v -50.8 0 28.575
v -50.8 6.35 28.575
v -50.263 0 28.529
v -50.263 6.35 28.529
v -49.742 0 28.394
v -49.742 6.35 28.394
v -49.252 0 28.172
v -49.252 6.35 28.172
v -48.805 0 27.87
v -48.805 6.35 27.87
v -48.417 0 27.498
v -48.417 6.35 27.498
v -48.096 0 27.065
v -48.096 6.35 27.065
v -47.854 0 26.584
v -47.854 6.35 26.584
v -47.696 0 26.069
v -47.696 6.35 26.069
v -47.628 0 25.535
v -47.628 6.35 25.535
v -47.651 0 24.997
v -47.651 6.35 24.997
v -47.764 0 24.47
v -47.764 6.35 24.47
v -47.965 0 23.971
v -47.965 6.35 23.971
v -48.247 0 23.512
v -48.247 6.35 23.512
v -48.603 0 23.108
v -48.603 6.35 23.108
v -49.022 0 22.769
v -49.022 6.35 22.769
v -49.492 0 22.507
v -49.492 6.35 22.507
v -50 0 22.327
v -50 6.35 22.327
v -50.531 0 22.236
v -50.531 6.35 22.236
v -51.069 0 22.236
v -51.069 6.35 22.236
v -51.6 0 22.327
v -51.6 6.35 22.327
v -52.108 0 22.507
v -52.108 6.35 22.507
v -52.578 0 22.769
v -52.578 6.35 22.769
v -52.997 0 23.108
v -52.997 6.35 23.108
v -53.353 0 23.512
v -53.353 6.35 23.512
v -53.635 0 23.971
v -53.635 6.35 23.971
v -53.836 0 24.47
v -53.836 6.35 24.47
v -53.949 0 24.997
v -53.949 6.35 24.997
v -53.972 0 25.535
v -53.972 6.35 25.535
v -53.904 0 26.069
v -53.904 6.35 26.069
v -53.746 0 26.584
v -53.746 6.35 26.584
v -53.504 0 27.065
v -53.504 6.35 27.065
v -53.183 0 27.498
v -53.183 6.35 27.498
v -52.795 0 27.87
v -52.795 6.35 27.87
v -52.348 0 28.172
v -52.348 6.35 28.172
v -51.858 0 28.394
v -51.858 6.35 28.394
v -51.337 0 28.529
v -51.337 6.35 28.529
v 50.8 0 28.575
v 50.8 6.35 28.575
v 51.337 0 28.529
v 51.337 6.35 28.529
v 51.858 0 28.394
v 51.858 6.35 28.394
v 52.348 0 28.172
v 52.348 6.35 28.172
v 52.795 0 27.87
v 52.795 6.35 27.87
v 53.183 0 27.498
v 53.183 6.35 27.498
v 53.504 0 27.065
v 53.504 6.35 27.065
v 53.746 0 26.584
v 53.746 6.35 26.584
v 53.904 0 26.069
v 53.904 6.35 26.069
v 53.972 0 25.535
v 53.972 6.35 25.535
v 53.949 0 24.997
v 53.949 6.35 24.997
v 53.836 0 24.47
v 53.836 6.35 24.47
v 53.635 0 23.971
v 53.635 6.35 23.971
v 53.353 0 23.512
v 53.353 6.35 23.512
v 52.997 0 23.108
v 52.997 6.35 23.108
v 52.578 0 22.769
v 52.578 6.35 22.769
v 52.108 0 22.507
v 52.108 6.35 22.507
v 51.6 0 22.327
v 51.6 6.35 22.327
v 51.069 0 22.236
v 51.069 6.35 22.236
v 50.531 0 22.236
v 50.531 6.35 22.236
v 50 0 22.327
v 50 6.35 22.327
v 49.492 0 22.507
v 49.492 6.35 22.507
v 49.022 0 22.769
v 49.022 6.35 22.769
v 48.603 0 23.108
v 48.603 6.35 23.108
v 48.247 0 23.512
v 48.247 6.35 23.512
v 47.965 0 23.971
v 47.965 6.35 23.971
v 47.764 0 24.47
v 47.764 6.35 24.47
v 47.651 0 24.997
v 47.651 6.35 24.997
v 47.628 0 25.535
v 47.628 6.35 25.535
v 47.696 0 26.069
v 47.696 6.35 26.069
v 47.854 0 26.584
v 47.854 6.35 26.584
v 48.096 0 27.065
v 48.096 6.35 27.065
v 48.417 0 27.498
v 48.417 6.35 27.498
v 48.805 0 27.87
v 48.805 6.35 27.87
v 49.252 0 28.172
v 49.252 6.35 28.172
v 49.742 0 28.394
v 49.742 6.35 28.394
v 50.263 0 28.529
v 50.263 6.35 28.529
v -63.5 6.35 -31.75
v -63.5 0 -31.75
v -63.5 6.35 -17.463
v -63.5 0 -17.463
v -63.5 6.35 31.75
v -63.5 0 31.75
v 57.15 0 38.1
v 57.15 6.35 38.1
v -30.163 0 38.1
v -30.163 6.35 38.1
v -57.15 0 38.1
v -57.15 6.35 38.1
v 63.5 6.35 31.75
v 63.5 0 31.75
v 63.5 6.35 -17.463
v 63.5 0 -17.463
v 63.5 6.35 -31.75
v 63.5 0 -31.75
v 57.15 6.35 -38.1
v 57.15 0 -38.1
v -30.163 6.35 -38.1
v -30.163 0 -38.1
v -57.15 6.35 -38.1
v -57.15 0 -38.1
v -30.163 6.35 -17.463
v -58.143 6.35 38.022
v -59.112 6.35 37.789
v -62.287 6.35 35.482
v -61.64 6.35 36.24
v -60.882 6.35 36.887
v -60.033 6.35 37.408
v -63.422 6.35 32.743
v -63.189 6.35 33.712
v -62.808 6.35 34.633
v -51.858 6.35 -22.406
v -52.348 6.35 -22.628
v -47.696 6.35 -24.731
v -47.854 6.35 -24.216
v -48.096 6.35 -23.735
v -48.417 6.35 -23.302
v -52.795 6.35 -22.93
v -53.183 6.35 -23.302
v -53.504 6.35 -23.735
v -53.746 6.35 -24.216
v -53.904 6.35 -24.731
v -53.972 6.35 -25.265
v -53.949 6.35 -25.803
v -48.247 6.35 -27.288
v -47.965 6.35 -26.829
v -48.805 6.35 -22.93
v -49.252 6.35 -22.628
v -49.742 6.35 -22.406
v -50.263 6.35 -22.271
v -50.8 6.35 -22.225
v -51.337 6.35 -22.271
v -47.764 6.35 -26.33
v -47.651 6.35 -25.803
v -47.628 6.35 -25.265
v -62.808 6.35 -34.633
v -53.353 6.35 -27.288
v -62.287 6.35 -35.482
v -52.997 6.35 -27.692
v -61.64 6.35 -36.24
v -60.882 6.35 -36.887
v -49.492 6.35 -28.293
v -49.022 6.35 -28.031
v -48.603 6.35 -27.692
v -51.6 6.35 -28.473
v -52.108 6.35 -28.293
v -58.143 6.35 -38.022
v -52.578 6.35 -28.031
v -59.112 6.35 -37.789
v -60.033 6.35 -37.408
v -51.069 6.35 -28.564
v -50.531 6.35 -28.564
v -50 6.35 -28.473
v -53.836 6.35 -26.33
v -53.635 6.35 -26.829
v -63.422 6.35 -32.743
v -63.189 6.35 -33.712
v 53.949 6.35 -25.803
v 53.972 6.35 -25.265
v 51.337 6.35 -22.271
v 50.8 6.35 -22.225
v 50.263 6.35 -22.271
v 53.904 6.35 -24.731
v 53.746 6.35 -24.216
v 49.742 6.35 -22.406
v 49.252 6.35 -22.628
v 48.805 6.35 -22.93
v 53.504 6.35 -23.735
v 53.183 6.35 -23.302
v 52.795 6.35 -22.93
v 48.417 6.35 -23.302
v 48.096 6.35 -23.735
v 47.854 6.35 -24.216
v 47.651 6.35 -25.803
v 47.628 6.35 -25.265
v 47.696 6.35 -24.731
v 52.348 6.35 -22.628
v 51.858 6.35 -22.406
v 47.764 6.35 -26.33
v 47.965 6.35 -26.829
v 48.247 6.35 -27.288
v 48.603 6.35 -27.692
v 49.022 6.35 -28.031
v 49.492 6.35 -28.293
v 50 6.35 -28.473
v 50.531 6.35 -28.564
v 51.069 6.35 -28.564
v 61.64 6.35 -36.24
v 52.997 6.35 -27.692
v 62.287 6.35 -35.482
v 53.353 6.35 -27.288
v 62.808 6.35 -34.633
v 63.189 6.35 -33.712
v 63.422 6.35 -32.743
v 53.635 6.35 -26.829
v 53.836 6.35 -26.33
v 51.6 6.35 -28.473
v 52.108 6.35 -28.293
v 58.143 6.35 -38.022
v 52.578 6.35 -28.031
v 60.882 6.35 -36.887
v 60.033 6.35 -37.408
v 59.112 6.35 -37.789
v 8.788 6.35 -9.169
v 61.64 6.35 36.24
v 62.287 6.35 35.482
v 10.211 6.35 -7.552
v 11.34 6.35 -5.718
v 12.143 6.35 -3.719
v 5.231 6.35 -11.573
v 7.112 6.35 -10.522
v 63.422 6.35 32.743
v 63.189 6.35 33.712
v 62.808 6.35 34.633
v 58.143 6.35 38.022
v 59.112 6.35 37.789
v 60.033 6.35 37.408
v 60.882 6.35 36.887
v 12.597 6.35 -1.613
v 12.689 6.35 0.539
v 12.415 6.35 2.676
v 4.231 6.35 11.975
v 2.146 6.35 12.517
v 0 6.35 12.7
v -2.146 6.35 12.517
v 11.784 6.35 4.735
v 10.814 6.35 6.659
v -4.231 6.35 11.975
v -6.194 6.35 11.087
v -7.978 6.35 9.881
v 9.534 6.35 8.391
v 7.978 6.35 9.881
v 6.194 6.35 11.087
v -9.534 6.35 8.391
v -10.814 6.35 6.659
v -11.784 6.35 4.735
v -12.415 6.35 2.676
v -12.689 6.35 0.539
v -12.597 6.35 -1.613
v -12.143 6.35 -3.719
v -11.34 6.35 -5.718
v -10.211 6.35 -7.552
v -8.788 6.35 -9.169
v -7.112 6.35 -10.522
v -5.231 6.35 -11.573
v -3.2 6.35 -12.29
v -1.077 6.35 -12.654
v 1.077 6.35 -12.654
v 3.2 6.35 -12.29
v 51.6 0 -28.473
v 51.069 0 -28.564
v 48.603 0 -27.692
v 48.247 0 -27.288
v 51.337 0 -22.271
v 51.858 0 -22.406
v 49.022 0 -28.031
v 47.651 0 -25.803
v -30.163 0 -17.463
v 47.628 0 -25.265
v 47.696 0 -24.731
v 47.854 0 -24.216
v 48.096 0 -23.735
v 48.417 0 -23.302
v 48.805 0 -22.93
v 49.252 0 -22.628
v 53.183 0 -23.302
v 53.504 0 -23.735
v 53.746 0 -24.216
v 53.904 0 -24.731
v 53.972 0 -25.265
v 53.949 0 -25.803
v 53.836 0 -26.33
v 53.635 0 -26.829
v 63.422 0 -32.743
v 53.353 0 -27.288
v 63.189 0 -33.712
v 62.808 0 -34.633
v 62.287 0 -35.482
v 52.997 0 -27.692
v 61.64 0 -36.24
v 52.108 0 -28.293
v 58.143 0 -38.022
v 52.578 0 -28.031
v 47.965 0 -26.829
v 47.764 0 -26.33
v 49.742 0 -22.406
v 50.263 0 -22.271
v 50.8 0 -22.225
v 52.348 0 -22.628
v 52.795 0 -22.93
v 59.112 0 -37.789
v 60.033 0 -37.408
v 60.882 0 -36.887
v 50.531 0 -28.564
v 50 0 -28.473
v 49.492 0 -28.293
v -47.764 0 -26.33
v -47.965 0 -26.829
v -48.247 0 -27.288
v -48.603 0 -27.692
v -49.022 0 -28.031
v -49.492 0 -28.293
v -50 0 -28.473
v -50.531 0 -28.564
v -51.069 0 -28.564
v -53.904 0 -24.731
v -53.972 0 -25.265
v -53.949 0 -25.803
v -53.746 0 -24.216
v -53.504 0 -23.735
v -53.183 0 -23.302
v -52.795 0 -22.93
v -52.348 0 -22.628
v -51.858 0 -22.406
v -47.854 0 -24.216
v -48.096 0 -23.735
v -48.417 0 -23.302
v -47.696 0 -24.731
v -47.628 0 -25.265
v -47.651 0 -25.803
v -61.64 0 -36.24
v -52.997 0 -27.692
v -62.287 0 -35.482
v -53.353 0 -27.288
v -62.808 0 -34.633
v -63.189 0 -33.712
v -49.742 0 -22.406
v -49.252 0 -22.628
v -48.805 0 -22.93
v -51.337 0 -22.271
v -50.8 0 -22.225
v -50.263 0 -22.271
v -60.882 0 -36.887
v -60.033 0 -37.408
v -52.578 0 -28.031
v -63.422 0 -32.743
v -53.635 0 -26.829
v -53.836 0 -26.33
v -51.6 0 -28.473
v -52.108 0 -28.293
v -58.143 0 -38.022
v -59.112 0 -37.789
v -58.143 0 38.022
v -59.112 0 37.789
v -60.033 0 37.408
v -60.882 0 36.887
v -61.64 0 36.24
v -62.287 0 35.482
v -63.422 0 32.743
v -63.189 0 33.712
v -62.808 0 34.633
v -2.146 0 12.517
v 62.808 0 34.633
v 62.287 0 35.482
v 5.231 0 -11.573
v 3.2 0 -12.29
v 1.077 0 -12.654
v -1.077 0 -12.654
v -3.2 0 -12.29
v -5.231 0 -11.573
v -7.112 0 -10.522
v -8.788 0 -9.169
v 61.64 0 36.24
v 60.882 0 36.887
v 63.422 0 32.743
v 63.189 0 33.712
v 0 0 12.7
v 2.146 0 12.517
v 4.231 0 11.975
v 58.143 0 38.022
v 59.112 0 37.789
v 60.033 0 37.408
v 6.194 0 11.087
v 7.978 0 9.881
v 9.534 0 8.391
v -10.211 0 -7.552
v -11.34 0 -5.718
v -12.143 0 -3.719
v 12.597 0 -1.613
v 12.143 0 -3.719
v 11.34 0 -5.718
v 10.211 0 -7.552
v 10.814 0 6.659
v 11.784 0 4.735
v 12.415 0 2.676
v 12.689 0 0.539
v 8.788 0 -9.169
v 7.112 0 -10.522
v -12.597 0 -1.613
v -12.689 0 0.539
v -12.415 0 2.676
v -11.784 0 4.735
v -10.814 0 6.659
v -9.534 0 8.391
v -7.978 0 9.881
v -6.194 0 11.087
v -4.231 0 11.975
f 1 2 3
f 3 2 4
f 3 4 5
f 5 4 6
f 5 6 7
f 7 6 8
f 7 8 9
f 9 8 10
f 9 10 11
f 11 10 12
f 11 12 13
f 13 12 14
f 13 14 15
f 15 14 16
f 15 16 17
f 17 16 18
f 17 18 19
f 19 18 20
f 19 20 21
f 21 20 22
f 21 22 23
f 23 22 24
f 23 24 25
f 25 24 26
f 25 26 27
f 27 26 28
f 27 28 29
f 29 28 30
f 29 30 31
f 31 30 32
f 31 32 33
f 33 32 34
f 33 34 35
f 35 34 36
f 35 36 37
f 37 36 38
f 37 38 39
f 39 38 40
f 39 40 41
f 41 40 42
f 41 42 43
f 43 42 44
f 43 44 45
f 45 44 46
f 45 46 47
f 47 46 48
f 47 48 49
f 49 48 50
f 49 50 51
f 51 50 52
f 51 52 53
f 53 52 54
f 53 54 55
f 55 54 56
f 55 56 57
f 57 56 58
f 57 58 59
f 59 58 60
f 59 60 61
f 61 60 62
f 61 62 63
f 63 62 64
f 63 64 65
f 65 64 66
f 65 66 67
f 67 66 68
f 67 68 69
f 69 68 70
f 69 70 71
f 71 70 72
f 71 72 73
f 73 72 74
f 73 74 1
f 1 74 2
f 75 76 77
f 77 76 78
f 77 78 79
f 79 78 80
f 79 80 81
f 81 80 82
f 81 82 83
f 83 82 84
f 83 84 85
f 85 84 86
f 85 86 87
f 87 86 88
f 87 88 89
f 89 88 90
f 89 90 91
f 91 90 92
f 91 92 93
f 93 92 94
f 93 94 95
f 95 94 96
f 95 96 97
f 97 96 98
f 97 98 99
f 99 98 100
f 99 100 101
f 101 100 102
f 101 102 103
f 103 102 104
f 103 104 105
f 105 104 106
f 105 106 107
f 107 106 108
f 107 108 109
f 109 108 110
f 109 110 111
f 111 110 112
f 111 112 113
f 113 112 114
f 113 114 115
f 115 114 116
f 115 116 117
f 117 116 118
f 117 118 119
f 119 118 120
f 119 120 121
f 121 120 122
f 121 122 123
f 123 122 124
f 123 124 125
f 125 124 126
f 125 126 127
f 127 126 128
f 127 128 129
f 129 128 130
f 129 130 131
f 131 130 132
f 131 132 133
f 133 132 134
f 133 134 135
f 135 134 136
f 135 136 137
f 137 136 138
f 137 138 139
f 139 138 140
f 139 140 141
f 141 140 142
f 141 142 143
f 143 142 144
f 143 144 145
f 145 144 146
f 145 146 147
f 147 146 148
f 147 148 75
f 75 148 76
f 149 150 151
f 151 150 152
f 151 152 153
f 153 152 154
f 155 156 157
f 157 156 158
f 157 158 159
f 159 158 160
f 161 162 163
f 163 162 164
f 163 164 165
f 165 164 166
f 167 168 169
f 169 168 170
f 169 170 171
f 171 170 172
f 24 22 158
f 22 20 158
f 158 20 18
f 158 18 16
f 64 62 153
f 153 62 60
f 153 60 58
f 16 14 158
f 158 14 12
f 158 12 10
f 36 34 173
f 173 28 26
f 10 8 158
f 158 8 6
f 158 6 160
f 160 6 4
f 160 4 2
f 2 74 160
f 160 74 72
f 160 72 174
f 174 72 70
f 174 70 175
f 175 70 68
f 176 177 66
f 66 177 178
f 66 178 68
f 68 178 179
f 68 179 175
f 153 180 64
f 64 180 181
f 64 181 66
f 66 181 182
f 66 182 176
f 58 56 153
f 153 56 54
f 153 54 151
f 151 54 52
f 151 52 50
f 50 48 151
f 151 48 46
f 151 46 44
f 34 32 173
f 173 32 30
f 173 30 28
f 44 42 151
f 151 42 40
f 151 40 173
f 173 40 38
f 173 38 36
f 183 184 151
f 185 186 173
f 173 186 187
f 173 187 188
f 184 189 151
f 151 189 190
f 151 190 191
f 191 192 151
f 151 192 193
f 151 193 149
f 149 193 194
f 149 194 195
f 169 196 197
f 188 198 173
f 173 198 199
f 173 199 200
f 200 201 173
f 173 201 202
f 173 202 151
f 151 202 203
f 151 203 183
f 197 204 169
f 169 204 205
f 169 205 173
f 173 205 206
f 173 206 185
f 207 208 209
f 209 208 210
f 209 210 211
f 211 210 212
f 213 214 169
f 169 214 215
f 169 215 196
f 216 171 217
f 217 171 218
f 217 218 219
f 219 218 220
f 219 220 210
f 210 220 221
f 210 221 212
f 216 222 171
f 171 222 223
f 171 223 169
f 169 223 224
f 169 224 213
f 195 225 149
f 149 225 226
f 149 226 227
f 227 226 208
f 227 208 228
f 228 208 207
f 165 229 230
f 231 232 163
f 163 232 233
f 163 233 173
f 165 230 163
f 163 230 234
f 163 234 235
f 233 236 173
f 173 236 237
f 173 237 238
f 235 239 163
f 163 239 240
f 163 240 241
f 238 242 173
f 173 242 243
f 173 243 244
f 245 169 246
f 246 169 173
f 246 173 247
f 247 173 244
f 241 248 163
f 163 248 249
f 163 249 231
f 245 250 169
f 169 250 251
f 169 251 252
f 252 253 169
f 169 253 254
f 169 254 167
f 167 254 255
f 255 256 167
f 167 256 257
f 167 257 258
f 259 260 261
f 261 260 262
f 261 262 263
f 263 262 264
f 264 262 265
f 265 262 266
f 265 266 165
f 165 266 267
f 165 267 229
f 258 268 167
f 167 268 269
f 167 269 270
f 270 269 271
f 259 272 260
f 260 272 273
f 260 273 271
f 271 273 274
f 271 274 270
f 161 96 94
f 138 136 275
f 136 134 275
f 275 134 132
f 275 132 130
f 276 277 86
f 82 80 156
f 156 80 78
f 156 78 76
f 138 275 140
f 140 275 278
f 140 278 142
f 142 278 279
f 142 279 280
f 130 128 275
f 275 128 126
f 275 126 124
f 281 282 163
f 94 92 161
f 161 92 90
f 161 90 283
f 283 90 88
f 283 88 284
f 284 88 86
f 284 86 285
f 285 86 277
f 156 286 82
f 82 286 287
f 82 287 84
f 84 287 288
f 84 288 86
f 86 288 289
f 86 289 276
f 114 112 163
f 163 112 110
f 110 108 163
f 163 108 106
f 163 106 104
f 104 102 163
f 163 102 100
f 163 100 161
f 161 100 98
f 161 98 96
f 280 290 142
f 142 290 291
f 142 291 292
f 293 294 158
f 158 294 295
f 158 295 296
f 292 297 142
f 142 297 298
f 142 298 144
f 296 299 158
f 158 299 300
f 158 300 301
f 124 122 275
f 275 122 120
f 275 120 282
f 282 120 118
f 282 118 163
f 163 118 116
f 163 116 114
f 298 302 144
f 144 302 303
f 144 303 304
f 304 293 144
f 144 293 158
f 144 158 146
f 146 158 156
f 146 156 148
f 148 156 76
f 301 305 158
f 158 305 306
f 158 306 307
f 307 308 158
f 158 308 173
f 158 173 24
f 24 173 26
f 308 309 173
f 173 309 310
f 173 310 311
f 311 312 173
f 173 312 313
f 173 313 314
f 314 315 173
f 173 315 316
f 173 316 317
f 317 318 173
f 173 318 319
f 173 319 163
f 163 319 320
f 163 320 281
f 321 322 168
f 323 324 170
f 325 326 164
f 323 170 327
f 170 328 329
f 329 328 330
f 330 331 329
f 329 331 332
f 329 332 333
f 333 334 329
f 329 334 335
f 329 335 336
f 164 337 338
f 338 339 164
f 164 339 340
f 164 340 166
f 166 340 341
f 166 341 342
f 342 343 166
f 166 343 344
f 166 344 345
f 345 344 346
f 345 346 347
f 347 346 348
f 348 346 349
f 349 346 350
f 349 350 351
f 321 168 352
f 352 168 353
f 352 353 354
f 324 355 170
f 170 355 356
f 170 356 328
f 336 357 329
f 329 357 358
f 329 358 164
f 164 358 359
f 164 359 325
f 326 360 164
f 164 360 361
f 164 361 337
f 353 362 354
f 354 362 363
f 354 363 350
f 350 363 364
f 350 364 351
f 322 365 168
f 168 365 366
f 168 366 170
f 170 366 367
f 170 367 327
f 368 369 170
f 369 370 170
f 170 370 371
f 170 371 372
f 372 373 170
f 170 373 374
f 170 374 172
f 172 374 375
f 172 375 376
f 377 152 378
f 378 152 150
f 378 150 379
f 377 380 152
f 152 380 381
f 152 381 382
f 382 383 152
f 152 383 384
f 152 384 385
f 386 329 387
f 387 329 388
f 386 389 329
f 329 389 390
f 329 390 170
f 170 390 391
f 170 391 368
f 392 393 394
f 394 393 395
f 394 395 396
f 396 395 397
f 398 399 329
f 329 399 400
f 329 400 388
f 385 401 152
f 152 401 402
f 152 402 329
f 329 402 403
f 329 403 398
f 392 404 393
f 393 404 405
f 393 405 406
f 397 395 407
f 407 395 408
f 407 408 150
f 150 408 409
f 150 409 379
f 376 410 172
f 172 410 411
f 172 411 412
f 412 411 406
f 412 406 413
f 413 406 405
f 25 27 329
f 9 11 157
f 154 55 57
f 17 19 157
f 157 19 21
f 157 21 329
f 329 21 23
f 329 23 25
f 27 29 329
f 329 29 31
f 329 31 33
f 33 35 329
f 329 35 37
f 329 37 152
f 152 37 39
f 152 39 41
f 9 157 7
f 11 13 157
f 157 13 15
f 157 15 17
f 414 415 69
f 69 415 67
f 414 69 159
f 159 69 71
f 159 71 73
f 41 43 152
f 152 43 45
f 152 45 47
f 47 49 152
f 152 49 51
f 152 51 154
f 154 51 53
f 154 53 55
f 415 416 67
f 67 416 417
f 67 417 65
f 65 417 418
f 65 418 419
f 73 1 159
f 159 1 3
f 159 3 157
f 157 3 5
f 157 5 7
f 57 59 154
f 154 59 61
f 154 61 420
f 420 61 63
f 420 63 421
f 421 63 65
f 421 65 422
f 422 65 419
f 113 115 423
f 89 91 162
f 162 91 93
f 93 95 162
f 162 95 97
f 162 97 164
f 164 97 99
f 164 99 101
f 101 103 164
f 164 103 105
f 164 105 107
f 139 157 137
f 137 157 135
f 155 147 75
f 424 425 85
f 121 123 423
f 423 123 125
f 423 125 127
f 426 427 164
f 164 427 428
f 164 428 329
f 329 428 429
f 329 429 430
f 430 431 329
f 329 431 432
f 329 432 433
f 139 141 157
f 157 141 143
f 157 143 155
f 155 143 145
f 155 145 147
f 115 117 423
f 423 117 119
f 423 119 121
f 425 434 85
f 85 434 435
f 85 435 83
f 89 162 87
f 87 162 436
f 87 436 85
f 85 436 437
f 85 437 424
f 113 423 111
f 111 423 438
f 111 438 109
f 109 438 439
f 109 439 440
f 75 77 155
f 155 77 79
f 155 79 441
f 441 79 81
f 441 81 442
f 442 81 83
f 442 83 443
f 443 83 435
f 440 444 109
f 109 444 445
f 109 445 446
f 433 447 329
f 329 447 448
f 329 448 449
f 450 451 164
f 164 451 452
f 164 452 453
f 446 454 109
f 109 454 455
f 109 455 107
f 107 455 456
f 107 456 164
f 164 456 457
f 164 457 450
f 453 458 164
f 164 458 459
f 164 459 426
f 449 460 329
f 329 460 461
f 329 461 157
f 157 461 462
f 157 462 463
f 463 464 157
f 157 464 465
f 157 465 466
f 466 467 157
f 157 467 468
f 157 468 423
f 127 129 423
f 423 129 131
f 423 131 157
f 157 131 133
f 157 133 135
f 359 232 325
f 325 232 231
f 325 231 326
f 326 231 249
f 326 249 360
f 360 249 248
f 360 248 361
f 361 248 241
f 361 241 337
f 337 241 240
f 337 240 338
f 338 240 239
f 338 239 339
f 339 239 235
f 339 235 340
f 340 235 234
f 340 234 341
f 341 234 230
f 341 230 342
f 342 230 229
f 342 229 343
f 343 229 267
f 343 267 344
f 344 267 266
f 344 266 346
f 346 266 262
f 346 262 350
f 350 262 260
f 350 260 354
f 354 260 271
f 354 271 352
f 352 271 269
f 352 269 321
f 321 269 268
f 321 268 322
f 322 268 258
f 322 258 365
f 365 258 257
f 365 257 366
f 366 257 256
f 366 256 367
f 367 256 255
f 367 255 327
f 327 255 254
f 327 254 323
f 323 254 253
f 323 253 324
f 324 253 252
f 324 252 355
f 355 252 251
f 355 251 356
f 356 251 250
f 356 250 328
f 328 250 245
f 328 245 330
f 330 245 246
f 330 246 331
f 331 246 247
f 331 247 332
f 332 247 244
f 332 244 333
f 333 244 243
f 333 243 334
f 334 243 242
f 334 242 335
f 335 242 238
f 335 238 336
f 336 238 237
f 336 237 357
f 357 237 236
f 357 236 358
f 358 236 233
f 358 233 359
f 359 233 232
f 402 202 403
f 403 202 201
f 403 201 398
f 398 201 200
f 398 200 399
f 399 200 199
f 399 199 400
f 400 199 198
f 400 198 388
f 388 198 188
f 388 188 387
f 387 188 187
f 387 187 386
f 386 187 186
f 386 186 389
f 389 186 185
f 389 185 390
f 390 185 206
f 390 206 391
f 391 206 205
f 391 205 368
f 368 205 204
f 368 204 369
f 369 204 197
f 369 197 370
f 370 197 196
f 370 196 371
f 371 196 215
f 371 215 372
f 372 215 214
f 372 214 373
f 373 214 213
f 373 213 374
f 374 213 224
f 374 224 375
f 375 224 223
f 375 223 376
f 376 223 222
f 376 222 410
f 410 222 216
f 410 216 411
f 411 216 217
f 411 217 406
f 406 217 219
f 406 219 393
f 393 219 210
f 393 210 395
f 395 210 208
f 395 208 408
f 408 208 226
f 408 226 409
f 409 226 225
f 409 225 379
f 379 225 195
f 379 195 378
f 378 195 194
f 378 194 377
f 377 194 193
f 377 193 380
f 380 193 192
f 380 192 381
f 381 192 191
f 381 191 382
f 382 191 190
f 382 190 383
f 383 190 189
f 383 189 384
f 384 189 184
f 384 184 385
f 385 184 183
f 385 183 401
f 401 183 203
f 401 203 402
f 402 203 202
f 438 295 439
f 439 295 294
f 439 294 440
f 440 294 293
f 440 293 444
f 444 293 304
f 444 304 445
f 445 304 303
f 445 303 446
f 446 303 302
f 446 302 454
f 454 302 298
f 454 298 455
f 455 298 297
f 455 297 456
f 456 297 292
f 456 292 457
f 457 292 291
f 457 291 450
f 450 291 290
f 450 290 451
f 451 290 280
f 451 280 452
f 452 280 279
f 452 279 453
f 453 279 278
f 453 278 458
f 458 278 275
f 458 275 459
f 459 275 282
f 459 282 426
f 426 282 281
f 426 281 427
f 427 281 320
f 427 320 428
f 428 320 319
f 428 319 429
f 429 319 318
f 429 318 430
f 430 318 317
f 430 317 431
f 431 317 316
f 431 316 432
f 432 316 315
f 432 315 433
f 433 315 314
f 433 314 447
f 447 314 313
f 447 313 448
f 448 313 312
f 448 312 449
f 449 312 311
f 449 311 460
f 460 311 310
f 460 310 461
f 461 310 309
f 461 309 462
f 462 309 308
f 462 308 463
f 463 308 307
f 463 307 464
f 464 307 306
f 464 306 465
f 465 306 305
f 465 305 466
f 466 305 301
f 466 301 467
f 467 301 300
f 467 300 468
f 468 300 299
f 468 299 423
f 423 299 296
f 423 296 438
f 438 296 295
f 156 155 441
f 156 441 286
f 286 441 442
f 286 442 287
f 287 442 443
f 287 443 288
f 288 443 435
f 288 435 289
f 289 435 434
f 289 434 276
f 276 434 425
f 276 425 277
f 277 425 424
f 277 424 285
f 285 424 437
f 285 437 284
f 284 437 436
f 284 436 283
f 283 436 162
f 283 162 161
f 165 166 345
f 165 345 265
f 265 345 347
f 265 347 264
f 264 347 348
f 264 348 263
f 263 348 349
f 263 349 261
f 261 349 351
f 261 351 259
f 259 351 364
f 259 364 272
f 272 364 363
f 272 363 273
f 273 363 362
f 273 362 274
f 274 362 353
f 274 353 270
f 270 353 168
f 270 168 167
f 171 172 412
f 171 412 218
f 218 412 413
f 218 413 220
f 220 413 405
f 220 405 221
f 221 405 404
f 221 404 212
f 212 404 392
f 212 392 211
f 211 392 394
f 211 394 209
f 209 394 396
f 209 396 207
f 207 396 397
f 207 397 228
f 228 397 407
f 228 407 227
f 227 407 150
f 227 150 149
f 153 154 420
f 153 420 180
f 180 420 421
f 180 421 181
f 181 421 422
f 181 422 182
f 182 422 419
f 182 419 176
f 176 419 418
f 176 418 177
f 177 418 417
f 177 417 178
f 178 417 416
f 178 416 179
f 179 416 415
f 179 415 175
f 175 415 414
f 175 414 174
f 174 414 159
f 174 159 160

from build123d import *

# Parameters (mm, degrees)
SKETCH1_W            = 127
SKETCH1_H            = 76.2
PLATE_DEPTH          = 6.35
SKETCH2_R            = 3.175
CUT_EXTRUDE1_DEPTH   = 75.324844433
LPATTERN1_COUNT      = 2
LPATTERN1_PITCH      = 101.6
LPATTERN1_COUNT_DIR2 = 2
LPATTERN1_PITCH_DIR2 = 50.8
SKETCH4_R            = 12.7
CUT_EXTRUDE2_DEPTH   = 75.324844433
FILLET1_R            = 6.35


with BuildPart() as part:
    # Sketch1 → Plate (new body)
    with BuildSketch(Plane(origin=(0, 0, 0), x_dir=(1, 0, 0), z_dir=(0, 1, 0))):
        Rectangle(SKETCH1_W, SKETCH1_H)
    extrude(amount=PLATE_DEPTH)

    # Sketch2 → Cut-Extrude1 (cut, through all)
    with BuildSketch(Plane(origin=(0, 6.35, 0), x_dir=(1, 0, 0), z_dir=(0, 1, 0))):
        with Locations(Location((50.8, 25.4, 0), (0, 0, 270))):
            Circle(SKETCH2_R)
    cut_extrude1 = extrude(amount=-CUT_EXTRUDE1_DEPTH, mode=Mode.SUBTRACT)

    # LPattern1: Cut-Extrude1 2 × 2
    with Locations(*[(-i * LPATTERN1_PITCH, 0, j * LPATTERN1_PITCH_DIR2) for i in range(LPATTERN1_COUNT) for j in range(LPATTERN1_COUNT_DIR2) if (i, j) != (0, 0)]):
        add(cut_extrude1, mode=Mode.SUBTRACT)

    # Sketch4 → Cut-Extrude2 (cut, through all)
    with BuildSketch(Plane(origin=(0, 6.35, 0), x_dir=(1, 0, 0), z_dir=(0, 1, 0))):
        with Locations(Location((0, 0, 0), (0, 0, 270))):
            Circle(SKETCH4_R)
    extrude(amount=-CUT_EXTRUDE2_DEPTH, mode=Mode.SUBTRACT)

    # Fillet1
    fillet1_edges = [part.edges().sort_by_distance(p)[0] for p in [
        (-63.5, 3.175, -38.1),
        (63.5, 3.175, -38.1),
        (63.5, 3.175, 38.1),
        (-63.5, 3.175, 38.1),
    ]]
    fillet(fillet1_edges, radius=FILLET1_R)


solid = part.part
